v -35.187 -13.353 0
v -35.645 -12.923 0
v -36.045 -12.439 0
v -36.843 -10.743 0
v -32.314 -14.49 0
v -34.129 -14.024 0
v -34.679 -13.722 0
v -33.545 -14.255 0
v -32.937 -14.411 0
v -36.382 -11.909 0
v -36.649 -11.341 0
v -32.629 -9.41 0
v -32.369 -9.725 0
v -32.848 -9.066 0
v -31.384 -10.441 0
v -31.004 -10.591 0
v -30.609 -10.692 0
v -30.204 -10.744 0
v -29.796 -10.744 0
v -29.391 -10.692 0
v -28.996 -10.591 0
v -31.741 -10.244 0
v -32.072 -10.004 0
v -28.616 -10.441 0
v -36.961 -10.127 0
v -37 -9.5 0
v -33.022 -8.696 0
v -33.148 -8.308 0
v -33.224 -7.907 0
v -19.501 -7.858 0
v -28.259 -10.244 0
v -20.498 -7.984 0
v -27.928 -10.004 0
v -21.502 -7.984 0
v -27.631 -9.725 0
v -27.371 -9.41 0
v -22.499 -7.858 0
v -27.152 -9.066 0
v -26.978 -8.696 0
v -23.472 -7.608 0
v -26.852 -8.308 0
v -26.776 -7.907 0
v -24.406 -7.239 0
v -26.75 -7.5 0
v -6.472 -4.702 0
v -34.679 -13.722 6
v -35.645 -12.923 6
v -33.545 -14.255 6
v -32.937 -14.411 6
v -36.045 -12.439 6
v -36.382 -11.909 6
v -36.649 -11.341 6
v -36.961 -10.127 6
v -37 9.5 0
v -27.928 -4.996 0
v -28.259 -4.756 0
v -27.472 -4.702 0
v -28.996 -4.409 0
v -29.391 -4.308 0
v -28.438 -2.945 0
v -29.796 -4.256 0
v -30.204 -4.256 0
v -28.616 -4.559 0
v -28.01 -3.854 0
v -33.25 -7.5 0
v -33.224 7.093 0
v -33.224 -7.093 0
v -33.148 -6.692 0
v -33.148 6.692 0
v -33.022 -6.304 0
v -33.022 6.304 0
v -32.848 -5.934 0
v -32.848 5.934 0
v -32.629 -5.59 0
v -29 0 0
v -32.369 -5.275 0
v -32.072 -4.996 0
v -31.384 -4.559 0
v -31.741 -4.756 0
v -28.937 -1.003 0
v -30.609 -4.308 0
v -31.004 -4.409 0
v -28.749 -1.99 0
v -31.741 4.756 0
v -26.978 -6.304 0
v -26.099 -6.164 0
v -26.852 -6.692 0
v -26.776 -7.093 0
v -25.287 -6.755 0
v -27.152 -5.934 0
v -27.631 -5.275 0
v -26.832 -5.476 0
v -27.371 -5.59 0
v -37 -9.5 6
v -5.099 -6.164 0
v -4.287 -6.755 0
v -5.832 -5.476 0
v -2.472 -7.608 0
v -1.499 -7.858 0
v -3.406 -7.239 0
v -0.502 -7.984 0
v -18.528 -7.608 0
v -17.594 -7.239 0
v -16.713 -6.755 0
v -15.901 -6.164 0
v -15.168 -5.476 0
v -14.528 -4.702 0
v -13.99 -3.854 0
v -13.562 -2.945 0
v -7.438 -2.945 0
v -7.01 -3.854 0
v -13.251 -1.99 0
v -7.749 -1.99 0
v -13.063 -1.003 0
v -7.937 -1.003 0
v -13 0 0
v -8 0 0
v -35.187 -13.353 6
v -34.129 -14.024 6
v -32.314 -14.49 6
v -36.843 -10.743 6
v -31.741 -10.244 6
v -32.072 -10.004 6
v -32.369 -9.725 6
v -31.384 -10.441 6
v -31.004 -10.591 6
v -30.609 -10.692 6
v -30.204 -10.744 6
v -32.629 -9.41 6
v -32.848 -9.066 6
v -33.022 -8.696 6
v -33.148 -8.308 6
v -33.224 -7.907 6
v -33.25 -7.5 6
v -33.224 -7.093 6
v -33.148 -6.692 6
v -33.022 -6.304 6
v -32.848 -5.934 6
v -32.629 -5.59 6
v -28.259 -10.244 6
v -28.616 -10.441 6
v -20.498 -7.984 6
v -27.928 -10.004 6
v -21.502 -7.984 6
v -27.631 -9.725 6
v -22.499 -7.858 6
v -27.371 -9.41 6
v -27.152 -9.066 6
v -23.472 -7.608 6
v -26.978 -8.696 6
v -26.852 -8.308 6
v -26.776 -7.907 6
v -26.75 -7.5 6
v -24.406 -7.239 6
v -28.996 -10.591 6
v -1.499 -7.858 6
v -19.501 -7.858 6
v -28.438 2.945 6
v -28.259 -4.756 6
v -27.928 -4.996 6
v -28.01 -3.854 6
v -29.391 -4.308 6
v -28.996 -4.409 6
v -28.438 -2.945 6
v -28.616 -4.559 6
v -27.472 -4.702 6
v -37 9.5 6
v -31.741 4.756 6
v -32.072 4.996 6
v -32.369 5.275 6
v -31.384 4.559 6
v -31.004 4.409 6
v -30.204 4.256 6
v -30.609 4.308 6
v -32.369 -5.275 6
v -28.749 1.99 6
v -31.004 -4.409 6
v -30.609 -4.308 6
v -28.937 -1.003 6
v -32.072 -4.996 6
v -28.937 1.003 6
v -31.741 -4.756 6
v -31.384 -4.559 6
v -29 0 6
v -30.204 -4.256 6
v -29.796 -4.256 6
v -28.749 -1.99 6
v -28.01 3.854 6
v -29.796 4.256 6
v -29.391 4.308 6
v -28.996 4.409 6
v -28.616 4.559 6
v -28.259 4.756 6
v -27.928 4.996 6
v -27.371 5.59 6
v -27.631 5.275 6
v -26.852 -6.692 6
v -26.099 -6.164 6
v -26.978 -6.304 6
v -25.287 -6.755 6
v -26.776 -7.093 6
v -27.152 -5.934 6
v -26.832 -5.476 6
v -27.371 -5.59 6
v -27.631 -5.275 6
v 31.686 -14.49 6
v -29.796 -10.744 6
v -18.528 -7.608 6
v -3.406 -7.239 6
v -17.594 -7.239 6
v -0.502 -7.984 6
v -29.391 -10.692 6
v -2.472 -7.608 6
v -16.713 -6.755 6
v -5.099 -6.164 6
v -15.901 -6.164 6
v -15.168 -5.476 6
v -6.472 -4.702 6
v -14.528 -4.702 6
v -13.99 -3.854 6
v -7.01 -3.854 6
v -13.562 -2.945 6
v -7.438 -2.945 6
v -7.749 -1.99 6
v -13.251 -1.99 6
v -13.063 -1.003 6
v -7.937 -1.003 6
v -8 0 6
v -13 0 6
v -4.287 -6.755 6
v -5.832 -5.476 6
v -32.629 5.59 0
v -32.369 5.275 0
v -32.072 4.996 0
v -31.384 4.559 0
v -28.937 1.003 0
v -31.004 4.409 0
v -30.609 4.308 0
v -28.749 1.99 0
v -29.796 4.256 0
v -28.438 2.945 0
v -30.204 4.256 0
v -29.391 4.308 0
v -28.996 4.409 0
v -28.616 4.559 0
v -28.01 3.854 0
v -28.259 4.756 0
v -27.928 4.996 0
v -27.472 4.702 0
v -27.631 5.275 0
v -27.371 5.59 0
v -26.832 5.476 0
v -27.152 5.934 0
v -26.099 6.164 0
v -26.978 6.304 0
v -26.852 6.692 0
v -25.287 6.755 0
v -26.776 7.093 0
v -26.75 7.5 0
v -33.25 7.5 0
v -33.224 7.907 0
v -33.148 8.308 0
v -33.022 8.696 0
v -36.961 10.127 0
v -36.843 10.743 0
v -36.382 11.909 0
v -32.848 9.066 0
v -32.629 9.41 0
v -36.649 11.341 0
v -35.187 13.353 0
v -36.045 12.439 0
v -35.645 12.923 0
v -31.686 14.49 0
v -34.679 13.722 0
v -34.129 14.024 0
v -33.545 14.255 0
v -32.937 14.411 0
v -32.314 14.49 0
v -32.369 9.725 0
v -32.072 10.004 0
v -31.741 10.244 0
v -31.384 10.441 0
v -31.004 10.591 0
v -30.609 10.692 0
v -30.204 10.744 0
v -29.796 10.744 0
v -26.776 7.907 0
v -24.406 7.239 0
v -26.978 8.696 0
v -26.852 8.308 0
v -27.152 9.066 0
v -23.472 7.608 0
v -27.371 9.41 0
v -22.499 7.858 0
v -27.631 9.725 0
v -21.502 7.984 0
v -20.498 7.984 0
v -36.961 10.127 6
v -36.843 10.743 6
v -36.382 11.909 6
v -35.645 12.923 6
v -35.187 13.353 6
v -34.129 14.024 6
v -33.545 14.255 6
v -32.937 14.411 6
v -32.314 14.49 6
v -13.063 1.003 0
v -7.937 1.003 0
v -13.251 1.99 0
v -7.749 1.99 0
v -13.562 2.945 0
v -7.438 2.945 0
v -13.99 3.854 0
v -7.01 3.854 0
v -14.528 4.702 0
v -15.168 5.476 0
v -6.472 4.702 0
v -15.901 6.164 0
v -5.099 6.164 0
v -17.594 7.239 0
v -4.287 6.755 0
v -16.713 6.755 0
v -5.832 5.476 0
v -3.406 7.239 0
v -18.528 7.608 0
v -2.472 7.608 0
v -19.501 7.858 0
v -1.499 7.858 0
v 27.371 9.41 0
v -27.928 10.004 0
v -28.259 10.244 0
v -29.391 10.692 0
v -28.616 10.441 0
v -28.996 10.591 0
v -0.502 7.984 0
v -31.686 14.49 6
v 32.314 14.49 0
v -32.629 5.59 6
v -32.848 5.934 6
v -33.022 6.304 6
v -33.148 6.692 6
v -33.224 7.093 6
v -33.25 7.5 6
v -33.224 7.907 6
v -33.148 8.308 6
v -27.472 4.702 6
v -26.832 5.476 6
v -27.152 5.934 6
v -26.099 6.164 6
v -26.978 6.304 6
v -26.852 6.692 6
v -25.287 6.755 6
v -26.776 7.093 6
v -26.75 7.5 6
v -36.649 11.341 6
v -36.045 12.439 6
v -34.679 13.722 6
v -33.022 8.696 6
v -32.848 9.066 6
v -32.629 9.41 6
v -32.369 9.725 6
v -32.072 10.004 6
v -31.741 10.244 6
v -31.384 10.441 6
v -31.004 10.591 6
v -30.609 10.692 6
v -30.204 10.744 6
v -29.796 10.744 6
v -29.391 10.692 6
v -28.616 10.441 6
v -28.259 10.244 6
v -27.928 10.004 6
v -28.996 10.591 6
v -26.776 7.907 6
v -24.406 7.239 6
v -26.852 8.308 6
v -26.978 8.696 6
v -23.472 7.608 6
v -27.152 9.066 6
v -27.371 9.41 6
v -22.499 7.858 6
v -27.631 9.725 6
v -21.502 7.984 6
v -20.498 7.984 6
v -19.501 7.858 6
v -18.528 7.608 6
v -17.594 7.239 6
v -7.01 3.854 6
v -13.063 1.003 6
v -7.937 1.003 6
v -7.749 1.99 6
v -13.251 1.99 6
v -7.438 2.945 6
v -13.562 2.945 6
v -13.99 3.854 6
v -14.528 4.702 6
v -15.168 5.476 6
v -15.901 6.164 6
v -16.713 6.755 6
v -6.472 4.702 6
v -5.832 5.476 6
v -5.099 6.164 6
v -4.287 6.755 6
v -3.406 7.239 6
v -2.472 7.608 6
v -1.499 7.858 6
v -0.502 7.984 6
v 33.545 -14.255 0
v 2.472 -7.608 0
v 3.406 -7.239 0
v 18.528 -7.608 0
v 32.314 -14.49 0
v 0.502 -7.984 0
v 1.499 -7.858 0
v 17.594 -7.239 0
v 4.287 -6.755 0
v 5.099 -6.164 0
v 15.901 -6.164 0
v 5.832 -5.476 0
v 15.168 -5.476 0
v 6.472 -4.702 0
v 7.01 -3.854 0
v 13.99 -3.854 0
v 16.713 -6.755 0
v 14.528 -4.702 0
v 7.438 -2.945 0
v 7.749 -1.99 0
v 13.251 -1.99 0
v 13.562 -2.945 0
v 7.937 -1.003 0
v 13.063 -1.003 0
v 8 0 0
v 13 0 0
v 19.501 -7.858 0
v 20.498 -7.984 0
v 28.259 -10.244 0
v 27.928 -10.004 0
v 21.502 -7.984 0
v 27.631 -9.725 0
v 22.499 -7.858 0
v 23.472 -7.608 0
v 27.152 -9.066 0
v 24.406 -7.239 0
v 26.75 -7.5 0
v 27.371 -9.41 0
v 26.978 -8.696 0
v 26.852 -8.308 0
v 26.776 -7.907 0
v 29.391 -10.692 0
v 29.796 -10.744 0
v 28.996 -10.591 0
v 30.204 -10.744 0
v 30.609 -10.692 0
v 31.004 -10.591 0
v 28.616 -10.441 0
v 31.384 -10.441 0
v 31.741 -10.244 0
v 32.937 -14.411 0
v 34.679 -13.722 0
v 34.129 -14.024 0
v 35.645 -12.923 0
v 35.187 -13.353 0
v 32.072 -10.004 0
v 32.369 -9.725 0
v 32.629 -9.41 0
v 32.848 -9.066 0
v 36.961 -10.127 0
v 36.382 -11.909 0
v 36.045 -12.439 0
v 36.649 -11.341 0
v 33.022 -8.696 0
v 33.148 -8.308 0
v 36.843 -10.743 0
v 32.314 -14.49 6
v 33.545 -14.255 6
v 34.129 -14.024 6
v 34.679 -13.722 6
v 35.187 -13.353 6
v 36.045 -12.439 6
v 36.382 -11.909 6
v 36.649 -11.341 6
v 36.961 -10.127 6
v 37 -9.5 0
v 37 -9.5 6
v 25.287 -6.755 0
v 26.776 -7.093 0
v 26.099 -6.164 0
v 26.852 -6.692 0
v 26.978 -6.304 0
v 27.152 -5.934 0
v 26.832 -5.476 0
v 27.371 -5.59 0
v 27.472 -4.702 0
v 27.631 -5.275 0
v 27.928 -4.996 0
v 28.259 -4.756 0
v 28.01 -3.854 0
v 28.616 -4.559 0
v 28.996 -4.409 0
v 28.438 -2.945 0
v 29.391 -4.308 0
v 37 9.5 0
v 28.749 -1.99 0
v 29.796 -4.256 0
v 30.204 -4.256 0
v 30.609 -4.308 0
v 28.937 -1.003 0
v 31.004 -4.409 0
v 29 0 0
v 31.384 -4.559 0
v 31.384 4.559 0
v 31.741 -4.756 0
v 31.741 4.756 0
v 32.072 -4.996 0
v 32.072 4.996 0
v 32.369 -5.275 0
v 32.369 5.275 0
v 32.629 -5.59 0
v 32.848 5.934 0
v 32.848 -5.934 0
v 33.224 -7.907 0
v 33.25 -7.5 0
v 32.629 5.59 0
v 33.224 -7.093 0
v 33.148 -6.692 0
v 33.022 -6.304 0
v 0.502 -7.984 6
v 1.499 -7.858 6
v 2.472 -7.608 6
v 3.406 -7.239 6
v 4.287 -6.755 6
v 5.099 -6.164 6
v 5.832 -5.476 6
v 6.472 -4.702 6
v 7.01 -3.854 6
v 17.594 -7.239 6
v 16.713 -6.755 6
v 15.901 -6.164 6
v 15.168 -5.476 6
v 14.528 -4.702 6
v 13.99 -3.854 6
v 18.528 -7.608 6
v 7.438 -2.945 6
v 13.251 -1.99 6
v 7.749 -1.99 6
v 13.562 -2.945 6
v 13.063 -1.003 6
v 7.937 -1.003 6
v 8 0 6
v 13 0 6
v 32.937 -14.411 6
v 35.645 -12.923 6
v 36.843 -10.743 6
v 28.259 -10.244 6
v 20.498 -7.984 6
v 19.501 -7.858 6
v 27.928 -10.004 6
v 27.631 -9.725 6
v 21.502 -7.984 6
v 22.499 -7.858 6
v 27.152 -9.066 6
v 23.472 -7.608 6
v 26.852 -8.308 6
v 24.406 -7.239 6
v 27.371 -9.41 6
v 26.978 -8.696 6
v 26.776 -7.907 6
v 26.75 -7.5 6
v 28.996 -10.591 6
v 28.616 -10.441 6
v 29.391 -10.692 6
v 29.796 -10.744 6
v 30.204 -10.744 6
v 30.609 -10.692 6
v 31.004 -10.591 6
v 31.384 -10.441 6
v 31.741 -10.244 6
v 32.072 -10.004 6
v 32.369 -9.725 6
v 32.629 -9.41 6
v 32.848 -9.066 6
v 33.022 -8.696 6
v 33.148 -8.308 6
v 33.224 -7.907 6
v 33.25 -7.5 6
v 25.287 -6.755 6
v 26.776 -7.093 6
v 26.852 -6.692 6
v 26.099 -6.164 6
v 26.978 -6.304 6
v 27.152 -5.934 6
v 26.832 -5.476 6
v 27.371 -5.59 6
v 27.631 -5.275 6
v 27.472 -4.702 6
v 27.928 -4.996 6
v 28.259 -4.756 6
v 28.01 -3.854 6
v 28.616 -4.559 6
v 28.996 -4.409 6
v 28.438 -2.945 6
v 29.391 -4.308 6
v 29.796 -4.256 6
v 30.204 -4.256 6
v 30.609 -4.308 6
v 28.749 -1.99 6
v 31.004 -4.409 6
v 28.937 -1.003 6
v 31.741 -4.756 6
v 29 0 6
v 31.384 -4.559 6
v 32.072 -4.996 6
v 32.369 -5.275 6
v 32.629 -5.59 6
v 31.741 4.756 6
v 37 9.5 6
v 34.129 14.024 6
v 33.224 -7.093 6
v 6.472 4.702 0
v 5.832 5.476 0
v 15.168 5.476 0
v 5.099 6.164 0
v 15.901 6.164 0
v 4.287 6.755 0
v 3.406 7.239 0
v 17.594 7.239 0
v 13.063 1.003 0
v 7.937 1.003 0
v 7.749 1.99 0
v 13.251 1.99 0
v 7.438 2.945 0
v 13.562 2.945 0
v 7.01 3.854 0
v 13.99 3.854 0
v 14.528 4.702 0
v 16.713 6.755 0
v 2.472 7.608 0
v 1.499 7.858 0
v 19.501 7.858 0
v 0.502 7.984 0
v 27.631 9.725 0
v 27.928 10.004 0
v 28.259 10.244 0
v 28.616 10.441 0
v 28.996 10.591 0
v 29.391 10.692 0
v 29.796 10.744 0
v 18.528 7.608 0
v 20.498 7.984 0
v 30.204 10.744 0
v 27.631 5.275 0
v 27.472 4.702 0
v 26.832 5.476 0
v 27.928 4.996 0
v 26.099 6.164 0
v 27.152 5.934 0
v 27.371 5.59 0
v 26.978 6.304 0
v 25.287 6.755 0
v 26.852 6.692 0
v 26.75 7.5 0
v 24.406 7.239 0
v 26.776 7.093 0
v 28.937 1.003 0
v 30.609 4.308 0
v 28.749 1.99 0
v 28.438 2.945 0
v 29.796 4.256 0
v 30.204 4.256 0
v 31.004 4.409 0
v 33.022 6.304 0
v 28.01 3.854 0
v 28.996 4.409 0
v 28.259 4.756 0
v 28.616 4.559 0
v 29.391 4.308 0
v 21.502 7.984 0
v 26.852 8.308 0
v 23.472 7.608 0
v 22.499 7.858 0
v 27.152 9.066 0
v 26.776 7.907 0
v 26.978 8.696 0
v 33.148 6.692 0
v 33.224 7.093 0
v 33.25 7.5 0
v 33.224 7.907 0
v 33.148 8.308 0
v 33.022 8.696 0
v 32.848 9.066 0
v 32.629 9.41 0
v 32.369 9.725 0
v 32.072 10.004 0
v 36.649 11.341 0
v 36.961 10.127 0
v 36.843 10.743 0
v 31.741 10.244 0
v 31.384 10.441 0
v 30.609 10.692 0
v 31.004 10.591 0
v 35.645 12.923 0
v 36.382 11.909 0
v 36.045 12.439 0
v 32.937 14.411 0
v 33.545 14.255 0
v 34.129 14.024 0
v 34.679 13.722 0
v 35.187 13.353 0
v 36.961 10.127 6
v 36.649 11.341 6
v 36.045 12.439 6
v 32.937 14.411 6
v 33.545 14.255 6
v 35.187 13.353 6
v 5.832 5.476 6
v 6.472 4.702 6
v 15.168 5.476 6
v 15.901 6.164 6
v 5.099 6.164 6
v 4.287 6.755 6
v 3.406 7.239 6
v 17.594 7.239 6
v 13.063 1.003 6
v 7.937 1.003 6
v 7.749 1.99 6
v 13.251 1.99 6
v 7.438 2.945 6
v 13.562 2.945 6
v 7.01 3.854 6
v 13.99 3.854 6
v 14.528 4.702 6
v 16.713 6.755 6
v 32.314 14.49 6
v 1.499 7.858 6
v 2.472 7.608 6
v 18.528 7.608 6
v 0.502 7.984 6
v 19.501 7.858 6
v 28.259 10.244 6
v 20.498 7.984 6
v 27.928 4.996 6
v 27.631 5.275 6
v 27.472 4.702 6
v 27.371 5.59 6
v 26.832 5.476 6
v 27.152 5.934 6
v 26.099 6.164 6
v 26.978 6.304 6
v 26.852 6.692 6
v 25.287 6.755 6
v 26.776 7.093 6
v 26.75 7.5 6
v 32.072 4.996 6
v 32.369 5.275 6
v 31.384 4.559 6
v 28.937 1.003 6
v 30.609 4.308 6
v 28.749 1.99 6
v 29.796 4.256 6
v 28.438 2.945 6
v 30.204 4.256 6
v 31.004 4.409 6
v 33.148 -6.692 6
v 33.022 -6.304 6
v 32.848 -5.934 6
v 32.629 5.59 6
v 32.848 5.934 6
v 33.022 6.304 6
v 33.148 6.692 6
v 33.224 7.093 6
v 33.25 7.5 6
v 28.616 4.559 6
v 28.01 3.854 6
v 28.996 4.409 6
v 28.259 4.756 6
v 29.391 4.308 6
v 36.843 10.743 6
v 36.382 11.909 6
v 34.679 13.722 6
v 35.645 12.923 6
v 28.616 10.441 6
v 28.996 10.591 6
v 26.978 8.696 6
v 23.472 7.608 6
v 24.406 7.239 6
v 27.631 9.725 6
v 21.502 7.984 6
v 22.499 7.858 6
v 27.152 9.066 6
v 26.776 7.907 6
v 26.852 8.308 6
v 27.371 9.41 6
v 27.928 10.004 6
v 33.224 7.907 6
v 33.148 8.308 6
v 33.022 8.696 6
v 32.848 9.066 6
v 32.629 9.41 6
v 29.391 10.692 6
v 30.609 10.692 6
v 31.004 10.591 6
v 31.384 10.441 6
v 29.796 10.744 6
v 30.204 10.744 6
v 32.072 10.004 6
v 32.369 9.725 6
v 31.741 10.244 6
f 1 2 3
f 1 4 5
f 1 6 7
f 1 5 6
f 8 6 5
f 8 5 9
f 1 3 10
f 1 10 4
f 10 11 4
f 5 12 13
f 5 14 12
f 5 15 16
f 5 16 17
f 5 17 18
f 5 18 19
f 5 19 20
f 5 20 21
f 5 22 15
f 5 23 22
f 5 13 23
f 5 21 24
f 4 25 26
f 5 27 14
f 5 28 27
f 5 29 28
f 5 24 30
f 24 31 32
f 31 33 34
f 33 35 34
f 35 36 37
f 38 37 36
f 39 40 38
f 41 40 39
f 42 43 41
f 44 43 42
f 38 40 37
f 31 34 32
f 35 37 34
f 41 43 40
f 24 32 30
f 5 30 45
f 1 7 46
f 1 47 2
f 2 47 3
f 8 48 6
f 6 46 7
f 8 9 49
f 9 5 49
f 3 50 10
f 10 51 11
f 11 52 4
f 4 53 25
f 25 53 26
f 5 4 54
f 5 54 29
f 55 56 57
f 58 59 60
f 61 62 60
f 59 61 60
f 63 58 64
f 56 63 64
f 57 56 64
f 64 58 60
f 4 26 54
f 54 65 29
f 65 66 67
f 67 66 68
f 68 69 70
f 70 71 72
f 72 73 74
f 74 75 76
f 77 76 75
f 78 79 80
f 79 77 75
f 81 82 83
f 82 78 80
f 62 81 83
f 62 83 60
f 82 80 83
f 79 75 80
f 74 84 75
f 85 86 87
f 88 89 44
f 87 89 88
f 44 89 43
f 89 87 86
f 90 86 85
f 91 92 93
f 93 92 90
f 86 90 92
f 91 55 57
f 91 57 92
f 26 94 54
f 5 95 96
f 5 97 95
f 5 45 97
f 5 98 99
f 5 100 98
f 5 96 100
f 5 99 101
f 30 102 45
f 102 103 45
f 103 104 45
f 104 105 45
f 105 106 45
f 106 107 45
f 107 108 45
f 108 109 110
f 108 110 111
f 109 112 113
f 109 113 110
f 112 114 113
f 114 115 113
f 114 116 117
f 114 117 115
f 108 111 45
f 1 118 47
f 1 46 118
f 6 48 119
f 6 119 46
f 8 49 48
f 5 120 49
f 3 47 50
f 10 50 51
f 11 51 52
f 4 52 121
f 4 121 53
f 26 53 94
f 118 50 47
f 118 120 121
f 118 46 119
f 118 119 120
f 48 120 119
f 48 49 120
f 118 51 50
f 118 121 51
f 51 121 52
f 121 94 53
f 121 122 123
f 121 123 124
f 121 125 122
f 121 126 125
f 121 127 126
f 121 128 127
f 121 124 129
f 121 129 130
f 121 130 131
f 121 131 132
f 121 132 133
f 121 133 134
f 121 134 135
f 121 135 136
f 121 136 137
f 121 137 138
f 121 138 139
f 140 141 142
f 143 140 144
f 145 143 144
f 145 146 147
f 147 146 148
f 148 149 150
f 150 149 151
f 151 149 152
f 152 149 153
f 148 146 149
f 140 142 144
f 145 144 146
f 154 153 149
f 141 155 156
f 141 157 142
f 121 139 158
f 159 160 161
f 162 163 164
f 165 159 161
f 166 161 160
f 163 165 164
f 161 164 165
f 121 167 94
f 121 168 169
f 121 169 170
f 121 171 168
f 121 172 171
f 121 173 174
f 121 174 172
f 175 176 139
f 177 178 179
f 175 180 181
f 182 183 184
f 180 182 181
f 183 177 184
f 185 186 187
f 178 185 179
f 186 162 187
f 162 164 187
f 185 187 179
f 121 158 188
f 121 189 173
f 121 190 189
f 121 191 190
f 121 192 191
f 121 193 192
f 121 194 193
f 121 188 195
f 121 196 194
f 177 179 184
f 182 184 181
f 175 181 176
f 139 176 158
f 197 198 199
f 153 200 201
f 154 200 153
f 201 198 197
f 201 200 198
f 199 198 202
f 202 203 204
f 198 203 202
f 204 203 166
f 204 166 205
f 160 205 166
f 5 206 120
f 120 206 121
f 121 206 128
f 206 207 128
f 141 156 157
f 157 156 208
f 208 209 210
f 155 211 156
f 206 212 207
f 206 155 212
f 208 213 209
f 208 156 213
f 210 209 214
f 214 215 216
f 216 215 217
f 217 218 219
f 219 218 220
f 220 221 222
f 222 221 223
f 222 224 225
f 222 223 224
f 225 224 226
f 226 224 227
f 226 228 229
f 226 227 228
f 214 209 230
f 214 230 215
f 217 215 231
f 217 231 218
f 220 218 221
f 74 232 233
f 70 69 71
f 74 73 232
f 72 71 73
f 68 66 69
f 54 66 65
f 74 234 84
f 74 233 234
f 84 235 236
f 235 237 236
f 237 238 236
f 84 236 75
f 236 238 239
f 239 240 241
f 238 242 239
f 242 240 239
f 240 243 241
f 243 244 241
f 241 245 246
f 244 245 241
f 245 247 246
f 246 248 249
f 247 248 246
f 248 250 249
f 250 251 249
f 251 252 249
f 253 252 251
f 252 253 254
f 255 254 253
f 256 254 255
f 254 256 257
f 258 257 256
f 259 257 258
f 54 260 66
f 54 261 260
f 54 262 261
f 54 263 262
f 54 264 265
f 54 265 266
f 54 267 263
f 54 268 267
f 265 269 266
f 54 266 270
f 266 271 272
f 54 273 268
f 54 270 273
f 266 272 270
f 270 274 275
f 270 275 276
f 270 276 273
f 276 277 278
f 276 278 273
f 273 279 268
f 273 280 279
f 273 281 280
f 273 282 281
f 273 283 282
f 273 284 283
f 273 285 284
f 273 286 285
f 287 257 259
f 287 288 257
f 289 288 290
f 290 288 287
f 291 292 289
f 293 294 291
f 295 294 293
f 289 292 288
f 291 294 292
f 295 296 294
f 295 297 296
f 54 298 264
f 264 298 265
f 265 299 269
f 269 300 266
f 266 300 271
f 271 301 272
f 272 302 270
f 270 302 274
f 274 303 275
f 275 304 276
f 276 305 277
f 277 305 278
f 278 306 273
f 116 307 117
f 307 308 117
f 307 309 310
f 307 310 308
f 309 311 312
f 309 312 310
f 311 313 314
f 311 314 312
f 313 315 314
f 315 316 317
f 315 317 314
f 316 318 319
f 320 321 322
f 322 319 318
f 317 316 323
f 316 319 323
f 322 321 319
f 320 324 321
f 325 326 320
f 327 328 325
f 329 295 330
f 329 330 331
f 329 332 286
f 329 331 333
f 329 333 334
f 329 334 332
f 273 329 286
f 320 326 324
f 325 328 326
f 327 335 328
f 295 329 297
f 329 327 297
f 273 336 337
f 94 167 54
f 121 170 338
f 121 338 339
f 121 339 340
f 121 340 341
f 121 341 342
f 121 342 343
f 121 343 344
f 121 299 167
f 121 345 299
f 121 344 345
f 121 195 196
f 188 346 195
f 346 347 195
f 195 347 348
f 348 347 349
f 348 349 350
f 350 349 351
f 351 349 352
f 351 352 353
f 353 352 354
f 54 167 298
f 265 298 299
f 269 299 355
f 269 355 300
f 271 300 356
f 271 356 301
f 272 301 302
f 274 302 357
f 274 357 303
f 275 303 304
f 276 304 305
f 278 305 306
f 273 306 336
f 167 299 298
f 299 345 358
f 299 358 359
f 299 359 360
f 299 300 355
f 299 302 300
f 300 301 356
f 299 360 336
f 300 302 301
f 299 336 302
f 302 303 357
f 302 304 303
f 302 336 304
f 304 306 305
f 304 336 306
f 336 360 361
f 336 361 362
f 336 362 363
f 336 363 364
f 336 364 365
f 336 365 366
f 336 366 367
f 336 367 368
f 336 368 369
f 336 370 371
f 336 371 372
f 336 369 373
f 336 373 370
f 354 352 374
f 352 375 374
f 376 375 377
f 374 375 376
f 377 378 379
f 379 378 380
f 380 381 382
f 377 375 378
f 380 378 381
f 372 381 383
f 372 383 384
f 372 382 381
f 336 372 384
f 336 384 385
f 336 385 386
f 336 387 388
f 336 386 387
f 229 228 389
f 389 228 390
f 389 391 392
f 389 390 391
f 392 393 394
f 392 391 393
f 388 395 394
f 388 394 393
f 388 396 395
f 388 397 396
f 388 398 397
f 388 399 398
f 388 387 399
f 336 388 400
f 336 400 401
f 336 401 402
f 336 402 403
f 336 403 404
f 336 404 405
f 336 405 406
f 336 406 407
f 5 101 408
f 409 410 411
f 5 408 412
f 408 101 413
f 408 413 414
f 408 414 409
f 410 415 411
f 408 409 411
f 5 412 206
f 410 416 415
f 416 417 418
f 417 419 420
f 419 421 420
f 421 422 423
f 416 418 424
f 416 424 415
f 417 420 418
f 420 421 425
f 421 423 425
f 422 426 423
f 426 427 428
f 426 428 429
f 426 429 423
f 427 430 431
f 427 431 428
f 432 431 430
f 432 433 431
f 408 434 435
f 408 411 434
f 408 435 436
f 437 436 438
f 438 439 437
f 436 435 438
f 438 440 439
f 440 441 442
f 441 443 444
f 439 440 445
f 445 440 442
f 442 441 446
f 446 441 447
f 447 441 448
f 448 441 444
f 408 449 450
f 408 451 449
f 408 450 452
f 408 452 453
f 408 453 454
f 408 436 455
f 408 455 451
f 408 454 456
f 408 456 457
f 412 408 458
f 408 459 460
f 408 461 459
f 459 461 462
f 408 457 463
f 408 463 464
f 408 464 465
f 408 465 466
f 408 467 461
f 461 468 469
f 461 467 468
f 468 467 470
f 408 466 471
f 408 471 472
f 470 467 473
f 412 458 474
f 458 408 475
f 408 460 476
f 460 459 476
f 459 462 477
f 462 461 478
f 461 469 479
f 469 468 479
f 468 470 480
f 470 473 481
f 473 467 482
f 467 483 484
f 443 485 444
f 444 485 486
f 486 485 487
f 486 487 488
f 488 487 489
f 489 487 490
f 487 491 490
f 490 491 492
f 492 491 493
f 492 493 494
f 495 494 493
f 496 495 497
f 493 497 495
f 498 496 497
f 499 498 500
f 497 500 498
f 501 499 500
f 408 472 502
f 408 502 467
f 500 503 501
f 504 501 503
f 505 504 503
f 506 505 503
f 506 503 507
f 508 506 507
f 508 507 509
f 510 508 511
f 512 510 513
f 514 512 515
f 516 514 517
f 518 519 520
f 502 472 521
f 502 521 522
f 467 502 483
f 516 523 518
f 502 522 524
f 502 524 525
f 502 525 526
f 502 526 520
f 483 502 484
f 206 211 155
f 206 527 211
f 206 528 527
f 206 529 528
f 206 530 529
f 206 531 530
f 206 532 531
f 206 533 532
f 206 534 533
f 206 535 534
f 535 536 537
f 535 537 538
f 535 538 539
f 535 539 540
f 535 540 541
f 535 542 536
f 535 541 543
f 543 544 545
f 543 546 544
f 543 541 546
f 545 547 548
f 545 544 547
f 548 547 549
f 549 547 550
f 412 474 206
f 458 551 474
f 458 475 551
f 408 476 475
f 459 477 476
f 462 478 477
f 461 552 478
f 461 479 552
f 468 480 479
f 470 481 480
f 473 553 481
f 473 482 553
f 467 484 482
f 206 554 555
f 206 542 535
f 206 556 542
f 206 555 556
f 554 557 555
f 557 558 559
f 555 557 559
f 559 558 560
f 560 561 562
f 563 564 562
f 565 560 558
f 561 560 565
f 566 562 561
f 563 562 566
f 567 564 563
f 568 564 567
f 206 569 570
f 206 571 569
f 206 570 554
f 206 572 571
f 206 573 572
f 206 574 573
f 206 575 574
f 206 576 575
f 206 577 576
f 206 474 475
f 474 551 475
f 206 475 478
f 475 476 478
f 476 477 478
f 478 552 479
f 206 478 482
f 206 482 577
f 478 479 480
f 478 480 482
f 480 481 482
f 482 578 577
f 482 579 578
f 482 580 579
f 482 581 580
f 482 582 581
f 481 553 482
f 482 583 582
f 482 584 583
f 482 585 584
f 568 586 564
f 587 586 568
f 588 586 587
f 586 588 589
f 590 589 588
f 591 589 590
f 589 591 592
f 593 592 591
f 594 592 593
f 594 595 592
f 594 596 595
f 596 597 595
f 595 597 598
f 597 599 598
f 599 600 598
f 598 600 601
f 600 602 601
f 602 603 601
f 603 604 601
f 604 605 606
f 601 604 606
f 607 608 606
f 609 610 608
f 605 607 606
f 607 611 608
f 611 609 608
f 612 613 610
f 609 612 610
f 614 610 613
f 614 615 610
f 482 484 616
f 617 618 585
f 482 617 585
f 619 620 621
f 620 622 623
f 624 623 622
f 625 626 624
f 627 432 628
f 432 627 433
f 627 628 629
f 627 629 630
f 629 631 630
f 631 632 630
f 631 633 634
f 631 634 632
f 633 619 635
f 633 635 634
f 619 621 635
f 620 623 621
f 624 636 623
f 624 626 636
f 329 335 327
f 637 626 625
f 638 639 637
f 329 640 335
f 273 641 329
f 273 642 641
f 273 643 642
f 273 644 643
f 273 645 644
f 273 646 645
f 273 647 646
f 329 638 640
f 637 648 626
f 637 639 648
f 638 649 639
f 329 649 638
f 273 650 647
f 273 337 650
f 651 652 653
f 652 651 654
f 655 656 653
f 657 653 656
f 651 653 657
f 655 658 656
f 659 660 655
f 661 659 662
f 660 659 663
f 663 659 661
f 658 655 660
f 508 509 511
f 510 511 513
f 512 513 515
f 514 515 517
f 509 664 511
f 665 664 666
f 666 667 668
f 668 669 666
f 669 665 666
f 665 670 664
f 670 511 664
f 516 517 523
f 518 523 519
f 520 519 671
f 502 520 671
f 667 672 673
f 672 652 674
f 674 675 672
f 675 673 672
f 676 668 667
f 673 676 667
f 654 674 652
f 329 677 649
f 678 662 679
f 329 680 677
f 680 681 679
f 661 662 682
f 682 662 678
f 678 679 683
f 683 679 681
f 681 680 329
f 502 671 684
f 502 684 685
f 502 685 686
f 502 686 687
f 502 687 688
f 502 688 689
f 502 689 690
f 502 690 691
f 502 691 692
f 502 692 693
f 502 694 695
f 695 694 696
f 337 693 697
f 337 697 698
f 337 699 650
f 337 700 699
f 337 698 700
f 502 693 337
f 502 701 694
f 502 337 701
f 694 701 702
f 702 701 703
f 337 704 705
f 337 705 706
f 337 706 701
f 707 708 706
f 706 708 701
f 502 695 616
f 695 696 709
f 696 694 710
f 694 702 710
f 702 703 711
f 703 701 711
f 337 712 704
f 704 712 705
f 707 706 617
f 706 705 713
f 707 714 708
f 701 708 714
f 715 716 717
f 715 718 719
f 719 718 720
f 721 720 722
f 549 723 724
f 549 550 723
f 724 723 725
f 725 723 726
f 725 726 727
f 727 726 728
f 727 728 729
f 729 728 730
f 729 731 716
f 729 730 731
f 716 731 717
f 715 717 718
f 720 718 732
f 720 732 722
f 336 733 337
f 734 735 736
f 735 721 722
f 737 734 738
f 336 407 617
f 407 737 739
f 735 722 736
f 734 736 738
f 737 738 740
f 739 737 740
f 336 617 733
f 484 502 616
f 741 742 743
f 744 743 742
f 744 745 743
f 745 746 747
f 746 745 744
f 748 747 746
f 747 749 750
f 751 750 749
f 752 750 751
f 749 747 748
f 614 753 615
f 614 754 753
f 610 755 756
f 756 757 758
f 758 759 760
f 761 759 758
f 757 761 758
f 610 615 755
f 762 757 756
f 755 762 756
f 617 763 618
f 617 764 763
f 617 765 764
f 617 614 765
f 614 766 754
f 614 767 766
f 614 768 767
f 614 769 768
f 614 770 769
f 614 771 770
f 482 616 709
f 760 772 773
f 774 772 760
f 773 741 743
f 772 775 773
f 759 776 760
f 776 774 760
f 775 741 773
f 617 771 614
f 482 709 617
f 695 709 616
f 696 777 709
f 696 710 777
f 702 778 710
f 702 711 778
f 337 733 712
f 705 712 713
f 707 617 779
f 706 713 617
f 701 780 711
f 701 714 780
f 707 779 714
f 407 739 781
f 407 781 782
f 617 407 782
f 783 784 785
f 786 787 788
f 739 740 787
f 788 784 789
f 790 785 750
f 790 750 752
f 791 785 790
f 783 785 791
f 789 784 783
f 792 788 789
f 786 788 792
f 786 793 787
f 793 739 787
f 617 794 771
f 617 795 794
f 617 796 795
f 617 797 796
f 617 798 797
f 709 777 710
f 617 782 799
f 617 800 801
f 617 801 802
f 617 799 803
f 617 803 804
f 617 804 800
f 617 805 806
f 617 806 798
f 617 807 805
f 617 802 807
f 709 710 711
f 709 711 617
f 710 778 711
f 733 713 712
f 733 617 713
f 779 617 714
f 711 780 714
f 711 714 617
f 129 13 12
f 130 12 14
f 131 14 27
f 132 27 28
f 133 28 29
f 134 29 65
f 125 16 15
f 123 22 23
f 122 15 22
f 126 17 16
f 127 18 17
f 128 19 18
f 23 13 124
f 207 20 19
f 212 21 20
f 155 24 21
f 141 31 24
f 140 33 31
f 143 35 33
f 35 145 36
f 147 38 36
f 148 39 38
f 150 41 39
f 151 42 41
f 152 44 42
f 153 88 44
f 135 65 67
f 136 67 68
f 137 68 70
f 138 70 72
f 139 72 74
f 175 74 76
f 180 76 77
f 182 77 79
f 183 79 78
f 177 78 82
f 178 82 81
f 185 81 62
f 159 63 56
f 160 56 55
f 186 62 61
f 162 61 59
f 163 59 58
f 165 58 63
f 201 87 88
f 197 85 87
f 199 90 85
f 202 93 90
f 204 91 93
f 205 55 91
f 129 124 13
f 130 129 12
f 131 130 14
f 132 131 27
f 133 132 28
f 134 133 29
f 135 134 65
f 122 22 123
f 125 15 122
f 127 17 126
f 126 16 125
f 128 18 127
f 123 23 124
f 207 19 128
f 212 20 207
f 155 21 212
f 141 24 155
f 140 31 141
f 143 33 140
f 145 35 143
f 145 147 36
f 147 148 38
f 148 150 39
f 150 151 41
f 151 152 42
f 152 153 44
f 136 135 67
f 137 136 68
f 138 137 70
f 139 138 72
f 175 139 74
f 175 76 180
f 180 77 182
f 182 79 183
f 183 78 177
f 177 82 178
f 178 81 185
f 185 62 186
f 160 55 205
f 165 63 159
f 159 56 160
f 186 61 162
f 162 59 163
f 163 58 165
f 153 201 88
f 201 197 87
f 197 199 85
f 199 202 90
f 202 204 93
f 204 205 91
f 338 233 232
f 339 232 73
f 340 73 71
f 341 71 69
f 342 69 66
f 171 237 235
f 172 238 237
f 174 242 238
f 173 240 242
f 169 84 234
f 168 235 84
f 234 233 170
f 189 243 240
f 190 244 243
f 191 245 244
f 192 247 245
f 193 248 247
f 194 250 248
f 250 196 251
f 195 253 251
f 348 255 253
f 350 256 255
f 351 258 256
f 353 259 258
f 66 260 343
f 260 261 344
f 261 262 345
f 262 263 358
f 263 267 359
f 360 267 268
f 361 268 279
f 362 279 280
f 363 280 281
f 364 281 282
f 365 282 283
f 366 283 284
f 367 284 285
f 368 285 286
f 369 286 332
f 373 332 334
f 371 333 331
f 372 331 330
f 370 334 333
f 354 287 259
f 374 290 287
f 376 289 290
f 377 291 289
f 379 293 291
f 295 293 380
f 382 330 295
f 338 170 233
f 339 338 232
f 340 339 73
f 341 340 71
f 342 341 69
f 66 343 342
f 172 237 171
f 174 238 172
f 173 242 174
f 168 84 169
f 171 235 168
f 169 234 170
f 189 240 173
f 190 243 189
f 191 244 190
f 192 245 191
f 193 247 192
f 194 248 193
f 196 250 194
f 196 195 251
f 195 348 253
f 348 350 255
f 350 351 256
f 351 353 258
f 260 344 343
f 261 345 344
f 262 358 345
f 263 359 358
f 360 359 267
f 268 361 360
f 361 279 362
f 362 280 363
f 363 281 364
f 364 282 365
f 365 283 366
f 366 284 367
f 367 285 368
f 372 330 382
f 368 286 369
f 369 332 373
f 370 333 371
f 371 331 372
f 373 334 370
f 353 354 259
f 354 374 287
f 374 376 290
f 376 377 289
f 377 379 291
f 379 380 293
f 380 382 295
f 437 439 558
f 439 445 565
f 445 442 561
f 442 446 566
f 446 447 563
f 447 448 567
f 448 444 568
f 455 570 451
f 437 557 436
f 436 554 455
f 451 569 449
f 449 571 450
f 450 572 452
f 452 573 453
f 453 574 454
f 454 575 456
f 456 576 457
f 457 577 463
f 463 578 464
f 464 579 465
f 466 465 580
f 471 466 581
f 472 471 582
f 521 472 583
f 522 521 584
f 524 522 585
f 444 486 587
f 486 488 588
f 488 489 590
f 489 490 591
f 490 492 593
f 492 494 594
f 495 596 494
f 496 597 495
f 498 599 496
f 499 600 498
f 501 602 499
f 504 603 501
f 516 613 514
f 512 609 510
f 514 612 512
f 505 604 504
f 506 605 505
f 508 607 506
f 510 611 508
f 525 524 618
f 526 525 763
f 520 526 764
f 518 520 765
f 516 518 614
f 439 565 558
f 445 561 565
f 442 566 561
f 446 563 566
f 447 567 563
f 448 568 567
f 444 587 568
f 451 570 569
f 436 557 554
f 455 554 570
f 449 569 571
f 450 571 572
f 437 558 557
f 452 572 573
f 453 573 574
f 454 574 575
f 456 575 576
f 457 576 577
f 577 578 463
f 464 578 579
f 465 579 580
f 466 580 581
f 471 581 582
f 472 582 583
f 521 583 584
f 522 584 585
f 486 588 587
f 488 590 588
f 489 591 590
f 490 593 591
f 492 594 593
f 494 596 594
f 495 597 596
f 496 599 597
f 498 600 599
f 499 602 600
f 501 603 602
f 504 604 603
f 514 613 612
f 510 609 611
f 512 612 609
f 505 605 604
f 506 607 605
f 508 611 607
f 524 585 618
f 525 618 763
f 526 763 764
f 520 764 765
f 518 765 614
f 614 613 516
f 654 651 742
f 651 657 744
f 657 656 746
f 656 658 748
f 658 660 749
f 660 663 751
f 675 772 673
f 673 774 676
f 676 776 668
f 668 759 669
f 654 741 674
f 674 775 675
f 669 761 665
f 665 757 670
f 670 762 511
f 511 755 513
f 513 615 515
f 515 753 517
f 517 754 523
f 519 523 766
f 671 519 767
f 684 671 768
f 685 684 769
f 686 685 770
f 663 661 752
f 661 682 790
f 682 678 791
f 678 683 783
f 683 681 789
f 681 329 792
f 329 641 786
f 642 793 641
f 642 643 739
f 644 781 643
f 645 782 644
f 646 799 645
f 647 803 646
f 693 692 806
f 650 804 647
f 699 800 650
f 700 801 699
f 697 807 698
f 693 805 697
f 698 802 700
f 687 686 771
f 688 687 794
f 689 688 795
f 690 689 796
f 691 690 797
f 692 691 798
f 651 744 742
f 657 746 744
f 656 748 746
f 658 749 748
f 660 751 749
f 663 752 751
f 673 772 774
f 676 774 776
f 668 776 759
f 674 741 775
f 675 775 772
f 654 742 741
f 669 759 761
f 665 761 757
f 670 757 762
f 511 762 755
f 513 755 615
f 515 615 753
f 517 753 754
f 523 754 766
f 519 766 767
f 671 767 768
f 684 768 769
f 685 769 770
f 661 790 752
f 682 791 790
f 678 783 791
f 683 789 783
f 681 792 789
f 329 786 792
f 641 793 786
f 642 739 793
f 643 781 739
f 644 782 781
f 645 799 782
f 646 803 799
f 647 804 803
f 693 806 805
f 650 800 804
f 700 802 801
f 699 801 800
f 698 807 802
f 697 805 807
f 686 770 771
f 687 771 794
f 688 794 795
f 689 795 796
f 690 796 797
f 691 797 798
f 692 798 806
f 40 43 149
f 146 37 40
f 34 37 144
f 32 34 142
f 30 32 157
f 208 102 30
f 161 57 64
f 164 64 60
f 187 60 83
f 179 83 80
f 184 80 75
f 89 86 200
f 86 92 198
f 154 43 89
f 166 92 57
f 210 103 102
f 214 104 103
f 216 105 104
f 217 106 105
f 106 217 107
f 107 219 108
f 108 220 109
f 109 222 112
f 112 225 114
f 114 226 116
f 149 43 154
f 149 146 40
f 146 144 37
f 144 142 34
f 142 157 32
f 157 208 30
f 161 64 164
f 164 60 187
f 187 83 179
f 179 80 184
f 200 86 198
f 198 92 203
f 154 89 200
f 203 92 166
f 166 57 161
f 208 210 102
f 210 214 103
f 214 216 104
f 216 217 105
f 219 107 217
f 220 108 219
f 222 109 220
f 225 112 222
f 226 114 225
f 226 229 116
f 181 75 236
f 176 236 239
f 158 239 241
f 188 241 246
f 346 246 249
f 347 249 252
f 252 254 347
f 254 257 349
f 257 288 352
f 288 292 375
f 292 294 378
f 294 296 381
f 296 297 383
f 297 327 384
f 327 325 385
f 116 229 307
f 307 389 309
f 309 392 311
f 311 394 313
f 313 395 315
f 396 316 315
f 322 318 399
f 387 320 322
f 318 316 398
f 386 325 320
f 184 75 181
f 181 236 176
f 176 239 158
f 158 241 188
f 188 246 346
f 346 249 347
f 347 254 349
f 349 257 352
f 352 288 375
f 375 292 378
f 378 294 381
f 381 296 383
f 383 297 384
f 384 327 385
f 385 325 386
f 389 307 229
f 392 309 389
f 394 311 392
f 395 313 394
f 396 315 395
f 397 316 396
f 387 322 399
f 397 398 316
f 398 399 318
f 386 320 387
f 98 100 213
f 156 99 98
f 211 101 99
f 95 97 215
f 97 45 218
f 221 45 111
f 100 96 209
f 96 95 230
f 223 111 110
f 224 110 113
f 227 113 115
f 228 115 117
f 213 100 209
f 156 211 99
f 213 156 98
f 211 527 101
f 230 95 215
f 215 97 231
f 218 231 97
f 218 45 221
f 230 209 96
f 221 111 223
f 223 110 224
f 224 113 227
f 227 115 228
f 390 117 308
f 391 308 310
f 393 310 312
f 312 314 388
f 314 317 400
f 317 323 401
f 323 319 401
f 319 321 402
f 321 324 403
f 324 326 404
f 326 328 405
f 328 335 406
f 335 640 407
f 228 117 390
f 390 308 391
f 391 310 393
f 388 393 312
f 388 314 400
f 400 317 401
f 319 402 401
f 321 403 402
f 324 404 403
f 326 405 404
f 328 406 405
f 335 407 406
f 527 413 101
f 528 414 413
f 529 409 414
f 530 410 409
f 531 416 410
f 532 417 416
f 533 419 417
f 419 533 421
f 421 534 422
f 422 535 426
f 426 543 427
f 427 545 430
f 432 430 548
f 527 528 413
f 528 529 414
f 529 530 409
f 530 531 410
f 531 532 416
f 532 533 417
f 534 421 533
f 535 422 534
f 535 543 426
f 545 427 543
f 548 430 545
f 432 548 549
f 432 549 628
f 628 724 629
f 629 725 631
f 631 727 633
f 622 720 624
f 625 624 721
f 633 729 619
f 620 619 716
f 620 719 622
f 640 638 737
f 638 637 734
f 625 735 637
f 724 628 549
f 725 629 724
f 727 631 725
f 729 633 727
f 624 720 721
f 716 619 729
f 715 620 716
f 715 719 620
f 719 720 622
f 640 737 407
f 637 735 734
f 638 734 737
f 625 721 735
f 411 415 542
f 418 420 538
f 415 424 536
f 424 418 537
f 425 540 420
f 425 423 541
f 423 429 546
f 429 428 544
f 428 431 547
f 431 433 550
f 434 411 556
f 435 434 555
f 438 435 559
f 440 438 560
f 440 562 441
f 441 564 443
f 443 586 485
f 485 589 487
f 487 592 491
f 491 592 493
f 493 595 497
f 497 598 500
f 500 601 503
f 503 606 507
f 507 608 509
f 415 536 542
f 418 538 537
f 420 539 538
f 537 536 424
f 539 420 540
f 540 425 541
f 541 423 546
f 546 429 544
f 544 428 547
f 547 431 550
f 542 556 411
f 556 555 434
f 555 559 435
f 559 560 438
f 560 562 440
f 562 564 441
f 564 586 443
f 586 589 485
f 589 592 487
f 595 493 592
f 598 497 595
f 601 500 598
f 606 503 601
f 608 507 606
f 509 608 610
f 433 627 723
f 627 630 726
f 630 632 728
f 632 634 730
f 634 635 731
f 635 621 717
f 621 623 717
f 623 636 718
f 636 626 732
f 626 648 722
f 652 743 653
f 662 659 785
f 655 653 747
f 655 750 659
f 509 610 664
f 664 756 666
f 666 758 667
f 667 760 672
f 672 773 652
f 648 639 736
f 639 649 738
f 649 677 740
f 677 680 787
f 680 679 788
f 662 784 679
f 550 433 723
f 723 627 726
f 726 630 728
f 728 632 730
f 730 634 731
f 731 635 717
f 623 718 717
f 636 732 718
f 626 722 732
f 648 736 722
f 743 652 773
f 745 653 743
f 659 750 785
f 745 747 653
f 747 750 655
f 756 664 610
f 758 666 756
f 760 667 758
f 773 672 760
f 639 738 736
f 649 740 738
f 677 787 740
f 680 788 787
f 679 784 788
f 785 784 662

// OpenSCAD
$fn = 50;

difference() {
	union() {
		hull() {
			translate(v = [-32.0, 9.5, 0]) {
				cylinder(h = 6, r = 5);
			}
			translate(v = [32.0, 9.5, 0]) {
				cylinder(h = 6, r = 5);
			}
			translate(v = [-32.0, -9.5, 0]) {
				cylinder(h = 6, r = 5);
			}
			translate(v = [32.0, -9.5, 0]) {
				cylinder(h = 6, r = 5);
			}
		}
	}
	union() {
		translate(v = [-30.0, -7.5, -100.0]) {
			cylinder(h = 200, r = 3.25);
		}
		translate(v = [-30.0, 7.5, -100.0]) {
			cylinder(h = 200, r = 3.25);
		}
		translate(v = [30.0, -7.5, -100.0]) {
			cylinder(h = 200, r = 3.25);
		}
		translate(v = [30.0, 7.5, -100.0]) {
			cylinder(h = 200, r = 3.25);
		}
		translate(v = [-30.0, -7.5, -100.0]) {
			cylinder(h = 200, r = 1.8);
		}
		translate(v = [-30.0, 7.5, -100.0]) {
			cylinder(h = 200, r = 1.8);
		}
		translate(v = [30.0, -7.5, -100.0]) {
			cylinder(h = 200, r = 1.8);
		}
		translate(v = [30.0, 7.5, -100.0]) {
			cylinder(h = 200, r = 1.8);
		}
		translate(v = [-21.0, 0, 0.0]) {
			cylinder(h = 6, r = 8.0);
		}
		cylinder(h = 6, r = 8.0);
		translate(v = [21.0, 0, 0.0]) {
			cylinder(h = 6, r = 8.0);
		}
	}
}
